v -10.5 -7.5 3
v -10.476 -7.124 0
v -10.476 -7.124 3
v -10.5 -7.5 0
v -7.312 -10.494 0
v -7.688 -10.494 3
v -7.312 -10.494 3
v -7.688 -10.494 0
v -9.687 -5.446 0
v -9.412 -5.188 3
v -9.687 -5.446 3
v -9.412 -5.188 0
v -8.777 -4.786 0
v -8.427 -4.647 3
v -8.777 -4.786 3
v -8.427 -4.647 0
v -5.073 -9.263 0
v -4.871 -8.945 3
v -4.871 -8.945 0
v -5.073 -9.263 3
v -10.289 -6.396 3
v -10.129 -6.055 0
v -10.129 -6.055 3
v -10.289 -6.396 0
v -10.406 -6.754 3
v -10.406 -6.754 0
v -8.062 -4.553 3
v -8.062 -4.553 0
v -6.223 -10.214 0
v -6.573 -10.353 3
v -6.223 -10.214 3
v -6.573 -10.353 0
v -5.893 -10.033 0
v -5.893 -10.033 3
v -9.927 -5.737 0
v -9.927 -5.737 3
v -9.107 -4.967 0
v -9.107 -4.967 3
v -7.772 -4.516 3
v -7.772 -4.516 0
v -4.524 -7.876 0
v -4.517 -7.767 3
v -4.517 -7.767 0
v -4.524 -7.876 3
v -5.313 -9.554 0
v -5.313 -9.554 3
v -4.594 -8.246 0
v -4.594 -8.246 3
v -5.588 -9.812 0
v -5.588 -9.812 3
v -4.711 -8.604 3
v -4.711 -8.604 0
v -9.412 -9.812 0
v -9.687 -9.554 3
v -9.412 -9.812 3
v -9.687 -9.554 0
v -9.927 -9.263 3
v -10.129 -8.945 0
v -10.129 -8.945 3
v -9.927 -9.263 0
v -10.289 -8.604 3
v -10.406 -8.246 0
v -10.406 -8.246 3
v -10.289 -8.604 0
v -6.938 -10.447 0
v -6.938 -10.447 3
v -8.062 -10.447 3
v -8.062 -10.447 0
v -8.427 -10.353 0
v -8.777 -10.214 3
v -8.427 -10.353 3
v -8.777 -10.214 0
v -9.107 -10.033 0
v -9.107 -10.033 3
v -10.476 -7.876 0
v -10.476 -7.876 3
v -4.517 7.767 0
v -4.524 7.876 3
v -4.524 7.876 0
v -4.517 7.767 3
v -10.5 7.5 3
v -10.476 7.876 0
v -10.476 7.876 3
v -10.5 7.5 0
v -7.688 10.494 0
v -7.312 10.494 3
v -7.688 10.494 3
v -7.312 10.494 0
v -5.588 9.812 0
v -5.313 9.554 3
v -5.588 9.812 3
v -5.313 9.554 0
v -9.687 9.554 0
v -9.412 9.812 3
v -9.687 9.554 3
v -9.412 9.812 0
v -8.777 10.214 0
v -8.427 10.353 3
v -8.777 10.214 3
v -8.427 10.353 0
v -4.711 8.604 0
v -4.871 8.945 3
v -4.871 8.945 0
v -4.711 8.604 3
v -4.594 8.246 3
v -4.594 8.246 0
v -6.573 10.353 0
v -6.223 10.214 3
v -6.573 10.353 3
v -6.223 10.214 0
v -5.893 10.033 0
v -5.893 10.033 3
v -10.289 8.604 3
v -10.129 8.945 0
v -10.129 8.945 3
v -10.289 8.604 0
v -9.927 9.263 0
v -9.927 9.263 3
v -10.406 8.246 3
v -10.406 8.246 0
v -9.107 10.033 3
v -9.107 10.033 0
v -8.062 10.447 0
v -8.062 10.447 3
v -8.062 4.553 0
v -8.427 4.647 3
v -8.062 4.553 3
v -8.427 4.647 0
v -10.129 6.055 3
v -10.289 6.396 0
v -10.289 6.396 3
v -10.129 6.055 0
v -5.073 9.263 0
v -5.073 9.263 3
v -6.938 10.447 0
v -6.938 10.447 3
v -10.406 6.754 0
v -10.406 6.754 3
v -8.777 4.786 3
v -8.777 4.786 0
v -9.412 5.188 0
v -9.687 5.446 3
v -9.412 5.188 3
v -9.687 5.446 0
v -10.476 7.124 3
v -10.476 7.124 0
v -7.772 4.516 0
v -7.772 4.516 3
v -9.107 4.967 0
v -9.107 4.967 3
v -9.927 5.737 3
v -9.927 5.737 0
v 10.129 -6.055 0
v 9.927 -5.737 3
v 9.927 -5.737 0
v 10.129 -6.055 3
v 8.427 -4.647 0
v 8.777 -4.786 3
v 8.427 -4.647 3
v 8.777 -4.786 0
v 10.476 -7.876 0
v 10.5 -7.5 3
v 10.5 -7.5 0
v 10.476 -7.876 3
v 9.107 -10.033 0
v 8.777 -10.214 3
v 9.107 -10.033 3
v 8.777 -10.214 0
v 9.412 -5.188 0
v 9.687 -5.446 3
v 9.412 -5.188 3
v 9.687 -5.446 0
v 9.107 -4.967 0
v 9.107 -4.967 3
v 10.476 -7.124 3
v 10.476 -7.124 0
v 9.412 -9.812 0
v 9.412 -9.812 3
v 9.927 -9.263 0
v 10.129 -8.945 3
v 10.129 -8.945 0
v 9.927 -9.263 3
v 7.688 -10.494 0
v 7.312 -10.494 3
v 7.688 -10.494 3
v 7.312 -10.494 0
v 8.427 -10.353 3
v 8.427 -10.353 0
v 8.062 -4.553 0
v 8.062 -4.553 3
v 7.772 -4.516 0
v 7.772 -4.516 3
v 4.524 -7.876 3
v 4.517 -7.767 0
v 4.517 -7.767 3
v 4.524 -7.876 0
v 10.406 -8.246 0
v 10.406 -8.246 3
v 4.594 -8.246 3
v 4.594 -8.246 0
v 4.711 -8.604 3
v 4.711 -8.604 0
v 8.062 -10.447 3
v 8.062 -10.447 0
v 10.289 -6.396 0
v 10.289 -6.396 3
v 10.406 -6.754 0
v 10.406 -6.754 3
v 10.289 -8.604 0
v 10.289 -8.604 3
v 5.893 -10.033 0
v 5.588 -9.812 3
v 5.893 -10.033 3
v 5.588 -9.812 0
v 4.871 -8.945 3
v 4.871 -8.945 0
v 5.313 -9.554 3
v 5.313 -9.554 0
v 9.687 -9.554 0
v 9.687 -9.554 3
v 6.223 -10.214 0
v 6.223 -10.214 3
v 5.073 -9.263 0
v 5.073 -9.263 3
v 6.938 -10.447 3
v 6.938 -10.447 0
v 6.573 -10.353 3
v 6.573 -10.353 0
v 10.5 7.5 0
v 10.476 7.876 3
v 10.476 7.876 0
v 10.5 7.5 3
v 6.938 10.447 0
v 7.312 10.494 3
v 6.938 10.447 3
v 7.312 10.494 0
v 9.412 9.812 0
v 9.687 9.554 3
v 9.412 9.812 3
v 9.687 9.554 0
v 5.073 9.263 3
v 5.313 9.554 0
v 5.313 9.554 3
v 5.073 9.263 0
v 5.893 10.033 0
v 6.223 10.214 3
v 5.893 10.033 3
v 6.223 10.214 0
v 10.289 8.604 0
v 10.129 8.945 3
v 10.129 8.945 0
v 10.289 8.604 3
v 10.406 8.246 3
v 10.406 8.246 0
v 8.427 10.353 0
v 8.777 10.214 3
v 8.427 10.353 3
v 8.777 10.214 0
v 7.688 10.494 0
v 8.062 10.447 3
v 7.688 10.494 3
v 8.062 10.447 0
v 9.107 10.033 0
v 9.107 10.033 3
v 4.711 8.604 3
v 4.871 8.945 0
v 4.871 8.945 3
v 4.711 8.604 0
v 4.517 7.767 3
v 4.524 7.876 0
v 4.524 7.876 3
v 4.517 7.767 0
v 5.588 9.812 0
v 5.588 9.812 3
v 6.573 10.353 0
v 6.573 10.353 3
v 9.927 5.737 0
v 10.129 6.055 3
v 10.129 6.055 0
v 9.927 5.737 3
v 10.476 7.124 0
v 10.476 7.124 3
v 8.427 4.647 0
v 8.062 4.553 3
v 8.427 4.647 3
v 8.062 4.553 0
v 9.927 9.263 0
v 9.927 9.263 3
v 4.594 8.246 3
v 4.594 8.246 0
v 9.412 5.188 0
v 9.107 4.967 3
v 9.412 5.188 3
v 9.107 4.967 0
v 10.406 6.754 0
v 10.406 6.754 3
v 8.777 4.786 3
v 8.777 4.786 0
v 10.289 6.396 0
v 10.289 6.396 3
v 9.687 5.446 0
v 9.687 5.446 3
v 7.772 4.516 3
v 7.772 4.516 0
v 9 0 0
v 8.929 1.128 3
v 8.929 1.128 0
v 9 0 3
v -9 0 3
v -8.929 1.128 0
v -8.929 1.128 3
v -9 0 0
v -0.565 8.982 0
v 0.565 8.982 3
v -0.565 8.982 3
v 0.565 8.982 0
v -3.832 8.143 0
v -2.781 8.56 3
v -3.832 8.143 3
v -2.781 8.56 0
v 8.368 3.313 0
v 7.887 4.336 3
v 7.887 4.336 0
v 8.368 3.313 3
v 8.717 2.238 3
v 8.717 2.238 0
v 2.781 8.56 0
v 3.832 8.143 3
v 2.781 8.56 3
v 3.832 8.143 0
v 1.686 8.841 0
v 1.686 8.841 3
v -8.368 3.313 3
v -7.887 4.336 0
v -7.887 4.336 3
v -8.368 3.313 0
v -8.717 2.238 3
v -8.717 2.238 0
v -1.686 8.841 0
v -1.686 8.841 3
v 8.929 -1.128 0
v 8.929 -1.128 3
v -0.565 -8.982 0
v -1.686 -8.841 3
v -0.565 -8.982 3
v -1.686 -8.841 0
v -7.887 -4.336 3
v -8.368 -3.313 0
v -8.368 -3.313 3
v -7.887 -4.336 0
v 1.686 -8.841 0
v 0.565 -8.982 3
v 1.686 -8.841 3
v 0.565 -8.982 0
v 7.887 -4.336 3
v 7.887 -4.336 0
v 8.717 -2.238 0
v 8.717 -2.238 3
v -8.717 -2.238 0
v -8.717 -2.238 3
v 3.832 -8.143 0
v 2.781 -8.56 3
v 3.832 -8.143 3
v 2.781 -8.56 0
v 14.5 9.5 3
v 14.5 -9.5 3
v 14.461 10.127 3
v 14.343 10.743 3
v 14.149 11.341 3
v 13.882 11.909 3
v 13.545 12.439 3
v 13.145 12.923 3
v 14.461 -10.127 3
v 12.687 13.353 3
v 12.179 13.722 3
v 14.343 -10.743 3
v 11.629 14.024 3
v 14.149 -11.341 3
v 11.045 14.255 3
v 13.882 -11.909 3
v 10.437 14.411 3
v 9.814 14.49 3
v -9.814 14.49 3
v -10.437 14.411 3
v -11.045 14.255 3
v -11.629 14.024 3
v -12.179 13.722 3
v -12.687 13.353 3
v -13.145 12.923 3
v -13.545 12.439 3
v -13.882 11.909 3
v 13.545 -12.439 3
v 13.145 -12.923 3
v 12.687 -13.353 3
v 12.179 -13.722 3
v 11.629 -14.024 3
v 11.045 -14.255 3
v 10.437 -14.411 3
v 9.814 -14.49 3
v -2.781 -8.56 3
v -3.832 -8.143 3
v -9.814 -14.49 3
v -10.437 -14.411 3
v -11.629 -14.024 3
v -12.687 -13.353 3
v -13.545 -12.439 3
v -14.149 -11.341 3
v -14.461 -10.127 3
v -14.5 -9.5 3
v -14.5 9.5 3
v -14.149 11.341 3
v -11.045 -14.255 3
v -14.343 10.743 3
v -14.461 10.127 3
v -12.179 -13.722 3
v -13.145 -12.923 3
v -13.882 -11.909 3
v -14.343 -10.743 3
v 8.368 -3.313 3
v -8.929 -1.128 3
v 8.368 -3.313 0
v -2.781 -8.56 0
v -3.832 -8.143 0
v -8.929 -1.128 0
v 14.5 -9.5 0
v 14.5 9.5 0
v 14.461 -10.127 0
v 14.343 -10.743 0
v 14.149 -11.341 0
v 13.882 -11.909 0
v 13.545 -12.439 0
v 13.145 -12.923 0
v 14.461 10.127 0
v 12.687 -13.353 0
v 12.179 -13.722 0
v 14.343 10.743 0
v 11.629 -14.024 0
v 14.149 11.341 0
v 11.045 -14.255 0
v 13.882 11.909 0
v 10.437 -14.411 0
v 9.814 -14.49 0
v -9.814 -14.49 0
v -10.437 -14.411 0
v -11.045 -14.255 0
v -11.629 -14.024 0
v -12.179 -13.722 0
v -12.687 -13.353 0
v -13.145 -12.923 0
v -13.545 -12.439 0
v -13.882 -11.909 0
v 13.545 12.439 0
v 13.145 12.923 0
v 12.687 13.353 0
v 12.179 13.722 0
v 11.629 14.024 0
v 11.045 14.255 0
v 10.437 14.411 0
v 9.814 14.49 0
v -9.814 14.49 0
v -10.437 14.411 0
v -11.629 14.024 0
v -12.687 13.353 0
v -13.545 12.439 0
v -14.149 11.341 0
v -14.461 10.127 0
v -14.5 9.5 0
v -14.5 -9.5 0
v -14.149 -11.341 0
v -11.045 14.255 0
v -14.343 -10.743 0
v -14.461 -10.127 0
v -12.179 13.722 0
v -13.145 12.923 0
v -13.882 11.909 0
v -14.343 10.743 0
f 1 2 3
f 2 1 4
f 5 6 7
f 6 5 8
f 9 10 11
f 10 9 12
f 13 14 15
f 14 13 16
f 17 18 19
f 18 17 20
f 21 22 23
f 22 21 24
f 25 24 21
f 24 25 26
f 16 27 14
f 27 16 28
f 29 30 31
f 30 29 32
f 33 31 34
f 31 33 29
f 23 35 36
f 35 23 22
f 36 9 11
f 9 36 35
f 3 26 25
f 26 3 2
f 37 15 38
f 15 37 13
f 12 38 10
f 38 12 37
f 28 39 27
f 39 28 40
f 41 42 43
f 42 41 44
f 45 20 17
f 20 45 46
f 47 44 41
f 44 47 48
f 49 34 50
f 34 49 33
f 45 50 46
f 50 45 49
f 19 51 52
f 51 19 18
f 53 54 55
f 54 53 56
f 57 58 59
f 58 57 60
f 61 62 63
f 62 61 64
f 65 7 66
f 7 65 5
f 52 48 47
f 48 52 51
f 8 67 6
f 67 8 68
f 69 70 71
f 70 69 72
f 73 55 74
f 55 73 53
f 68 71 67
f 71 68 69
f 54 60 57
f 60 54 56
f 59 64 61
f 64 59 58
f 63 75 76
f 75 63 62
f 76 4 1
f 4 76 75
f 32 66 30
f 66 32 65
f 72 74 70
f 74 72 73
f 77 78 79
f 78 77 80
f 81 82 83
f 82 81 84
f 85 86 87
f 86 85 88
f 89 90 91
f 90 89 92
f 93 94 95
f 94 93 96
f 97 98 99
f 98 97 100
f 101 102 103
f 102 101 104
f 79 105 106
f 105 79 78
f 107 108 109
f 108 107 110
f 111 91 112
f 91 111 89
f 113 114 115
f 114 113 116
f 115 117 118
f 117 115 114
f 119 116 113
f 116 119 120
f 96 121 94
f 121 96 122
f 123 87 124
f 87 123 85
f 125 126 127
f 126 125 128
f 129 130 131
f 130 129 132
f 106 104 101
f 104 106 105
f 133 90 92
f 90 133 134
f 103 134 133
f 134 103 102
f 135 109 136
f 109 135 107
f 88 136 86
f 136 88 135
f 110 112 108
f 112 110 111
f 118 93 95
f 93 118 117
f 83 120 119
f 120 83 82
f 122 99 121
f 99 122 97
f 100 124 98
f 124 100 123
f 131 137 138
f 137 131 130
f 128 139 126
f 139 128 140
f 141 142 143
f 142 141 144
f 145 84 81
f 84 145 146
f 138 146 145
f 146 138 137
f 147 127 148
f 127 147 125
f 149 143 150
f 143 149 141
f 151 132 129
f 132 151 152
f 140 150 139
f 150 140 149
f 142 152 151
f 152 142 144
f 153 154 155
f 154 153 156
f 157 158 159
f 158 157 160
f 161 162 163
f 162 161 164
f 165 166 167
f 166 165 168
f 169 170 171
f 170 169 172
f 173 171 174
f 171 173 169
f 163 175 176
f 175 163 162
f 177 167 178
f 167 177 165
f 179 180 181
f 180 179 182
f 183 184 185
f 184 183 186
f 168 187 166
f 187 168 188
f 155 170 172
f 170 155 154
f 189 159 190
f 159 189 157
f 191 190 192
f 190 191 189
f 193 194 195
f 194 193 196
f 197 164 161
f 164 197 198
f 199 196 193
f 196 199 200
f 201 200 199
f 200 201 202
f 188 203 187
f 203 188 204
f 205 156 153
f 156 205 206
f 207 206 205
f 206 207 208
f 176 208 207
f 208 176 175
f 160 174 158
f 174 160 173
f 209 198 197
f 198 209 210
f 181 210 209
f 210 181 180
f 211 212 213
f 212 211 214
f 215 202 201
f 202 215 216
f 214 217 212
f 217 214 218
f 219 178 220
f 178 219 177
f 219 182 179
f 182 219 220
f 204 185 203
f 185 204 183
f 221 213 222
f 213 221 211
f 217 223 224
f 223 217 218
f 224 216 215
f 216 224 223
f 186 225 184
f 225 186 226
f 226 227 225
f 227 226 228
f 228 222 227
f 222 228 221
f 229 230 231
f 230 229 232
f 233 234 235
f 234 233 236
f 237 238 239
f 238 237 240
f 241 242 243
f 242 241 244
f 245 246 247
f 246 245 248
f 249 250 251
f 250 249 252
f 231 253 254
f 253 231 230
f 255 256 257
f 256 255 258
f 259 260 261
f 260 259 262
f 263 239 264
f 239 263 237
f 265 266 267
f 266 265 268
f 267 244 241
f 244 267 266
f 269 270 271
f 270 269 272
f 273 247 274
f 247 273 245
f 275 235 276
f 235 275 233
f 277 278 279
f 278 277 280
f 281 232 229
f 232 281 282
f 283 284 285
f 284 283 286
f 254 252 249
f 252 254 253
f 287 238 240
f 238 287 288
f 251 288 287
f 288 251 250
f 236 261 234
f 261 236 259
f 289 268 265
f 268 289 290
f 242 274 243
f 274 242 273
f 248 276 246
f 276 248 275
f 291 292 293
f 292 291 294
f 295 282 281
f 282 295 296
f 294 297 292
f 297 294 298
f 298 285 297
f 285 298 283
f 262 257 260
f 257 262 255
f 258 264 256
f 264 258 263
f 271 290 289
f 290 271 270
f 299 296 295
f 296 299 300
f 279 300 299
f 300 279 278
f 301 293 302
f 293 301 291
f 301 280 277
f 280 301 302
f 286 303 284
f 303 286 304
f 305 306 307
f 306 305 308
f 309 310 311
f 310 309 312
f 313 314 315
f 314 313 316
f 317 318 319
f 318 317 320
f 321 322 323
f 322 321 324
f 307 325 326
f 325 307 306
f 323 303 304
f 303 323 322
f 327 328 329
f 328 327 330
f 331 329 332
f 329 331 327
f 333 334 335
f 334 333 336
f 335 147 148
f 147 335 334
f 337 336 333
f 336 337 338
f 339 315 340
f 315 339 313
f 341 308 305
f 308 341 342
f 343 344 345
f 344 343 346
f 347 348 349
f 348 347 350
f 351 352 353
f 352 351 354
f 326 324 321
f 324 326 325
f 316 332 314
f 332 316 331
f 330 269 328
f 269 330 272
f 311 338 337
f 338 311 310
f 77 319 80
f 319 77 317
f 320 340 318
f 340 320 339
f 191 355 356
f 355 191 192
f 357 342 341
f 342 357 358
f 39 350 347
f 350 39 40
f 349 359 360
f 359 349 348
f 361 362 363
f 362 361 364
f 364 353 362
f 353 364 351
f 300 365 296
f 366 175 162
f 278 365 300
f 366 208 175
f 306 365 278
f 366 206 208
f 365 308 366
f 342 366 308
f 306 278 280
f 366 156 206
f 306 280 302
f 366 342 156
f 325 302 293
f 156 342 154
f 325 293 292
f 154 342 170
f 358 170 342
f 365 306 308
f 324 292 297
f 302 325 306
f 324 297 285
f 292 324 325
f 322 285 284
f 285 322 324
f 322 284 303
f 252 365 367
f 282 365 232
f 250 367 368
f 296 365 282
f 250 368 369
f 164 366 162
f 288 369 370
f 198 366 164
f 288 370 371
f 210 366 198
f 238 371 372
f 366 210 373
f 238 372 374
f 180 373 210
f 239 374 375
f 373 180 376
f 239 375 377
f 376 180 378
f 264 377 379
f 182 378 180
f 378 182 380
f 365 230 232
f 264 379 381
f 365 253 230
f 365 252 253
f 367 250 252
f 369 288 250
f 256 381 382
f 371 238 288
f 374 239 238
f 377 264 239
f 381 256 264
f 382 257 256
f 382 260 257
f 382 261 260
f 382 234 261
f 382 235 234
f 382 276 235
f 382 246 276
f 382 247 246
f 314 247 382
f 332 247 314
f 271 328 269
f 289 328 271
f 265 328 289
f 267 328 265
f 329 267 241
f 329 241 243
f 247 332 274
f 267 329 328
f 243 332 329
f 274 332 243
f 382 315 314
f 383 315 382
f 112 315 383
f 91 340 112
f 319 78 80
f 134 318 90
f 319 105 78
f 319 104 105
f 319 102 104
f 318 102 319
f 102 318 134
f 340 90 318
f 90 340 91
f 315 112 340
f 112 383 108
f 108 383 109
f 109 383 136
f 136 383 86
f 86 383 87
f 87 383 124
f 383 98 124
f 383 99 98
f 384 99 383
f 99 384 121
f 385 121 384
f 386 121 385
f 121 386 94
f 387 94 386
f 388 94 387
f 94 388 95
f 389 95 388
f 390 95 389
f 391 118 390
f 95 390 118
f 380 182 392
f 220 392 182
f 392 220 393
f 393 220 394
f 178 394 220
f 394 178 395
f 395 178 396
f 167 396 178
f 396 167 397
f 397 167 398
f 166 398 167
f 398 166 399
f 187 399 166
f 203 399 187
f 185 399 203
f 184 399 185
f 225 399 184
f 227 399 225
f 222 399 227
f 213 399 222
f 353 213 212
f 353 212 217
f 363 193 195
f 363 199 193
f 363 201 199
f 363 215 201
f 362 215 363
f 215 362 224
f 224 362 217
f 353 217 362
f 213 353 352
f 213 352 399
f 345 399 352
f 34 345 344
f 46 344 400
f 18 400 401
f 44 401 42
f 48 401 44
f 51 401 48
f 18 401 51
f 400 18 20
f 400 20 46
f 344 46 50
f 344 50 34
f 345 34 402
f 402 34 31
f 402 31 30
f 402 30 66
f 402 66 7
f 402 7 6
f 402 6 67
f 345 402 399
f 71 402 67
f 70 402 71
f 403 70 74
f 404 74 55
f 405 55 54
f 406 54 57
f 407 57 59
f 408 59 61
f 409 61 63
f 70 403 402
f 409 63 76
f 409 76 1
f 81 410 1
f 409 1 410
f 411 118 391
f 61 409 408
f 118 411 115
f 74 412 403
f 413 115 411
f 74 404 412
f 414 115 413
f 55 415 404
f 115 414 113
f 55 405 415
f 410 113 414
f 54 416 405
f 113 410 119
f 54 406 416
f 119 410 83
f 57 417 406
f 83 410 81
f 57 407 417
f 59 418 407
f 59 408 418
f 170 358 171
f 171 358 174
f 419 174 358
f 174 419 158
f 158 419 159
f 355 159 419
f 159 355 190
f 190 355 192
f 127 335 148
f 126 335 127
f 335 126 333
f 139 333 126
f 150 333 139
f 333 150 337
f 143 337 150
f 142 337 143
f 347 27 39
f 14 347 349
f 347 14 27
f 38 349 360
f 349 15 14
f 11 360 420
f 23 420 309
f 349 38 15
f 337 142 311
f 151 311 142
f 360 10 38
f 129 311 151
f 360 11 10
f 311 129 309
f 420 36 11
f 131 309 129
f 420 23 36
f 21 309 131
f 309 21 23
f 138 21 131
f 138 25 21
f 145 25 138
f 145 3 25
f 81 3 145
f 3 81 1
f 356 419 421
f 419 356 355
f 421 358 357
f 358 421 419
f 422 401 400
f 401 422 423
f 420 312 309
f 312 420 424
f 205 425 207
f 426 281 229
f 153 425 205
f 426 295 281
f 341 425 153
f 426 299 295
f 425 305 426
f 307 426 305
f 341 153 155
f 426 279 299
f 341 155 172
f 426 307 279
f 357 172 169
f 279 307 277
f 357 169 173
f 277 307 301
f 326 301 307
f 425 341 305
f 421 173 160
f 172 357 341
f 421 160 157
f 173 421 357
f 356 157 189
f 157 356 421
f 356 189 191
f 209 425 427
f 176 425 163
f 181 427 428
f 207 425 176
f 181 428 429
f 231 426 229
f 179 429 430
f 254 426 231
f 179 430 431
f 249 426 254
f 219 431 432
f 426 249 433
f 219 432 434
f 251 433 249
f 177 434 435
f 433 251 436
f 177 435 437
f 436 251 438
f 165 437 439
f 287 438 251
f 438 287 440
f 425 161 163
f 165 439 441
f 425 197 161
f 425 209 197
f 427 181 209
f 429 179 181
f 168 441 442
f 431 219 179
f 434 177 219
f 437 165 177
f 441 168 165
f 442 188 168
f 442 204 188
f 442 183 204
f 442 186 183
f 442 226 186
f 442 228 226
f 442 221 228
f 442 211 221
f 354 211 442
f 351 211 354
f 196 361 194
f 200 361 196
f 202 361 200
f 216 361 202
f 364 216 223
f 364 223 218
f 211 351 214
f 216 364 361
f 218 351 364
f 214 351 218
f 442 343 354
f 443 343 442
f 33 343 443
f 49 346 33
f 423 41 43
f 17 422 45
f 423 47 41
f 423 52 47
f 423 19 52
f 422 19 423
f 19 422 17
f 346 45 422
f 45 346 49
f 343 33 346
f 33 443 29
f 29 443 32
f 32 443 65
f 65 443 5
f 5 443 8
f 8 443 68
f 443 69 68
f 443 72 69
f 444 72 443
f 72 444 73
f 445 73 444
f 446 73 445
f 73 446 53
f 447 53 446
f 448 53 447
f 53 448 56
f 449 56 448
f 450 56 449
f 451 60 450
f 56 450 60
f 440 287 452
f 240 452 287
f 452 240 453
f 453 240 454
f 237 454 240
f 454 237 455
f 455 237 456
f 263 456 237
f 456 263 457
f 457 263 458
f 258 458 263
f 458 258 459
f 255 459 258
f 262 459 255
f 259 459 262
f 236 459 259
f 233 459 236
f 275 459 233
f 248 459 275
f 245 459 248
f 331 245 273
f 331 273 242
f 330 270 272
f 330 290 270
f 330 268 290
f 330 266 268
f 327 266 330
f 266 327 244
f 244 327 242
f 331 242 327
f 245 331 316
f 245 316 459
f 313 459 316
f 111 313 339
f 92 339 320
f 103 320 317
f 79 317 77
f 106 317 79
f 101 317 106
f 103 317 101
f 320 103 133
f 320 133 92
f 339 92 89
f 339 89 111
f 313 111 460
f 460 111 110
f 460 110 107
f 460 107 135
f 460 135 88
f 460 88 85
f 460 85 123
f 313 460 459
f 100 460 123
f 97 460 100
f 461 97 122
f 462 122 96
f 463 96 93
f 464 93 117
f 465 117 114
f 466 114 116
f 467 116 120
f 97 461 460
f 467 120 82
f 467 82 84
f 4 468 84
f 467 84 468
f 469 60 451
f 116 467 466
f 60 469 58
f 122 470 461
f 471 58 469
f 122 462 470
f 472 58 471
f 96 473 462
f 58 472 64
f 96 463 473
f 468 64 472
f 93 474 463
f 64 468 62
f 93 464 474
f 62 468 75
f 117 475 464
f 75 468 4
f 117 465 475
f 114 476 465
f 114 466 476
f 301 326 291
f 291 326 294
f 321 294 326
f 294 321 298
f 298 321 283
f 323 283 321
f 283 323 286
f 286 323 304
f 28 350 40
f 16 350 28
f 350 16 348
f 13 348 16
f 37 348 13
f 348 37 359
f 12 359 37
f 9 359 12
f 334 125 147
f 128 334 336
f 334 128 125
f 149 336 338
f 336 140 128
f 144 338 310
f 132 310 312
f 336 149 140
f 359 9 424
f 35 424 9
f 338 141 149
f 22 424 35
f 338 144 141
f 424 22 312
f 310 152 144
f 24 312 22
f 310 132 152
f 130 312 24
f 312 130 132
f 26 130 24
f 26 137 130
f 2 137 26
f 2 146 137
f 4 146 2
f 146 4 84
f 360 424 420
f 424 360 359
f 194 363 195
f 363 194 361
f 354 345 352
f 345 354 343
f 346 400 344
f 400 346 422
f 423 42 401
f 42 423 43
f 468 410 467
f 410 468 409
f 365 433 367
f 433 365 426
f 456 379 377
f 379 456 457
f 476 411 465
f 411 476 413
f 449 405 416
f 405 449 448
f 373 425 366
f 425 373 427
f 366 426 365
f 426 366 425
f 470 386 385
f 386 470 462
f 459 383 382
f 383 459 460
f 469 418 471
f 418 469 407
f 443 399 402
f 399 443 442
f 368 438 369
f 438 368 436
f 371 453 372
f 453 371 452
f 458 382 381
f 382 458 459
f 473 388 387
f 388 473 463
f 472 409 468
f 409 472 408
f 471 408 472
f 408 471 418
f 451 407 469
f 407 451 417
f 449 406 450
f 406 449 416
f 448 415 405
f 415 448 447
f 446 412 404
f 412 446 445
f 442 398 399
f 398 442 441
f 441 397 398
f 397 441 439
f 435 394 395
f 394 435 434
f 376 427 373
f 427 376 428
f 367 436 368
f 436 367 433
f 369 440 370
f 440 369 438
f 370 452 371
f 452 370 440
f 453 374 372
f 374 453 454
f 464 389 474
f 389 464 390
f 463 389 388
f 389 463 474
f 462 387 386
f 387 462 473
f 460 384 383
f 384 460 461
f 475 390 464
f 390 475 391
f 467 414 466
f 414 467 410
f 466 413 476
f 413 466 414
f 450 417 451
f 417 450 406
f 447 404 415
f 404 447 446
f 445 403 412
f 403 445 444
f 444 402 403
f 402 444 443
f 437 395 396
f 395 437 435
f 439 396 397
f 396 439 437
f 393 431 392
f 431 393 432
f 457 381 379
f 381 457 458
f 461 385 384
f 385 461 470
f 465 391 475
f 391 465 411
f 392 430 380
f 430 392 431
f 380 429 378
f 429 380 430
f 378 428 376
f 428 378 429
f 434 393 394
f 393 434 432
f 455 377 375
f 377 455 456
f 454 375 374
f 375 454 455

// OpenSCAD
$fn = 50;


difference() {
	union() {
		hull() {
			translate(v = [-9.5000000000, 9.5000000000, 0]) {
				cylinder(h = 3, r = 5);
			}
			translate(v = [9.5000000000, 9.5000000000, 0]) {
				cylinder(h = 3, r = 5);
			}
			translate(v = [-9.5000000000, -9.5000000000, 0]) {
				cylinder(h = 3, r = 5);
			}
			translate(v = [9.5000000000, -9.5000000000, 0]) {
				cylinder(h = 3, r = 5);
			}
		}
	}
	union() {
		#translate(v = [-7.5000000000, -7.5000000000, -100.0000000000]) {
			cylinder(h = 200, r = 3.0000000000);
		}
		#translate(v = [-7.5000000000, 7.5000000000, -100.0000000000]) {
			cylinder(h = 200, r = 3.0000000000);
		}
		#translate(v = [7.5000000000, -7.5000000000, -100.0000000000]) {
			cylinder(h = 200, r = 3.0000000000);
		}
		#translate(v = [7.5000000000, 7.5000000000, -100.0000000000]) {
			cylinder(h = 200, r = 3.0000000000);
		}
		#cylinder(h = 3, r = 9.0000000000);
	}
}
